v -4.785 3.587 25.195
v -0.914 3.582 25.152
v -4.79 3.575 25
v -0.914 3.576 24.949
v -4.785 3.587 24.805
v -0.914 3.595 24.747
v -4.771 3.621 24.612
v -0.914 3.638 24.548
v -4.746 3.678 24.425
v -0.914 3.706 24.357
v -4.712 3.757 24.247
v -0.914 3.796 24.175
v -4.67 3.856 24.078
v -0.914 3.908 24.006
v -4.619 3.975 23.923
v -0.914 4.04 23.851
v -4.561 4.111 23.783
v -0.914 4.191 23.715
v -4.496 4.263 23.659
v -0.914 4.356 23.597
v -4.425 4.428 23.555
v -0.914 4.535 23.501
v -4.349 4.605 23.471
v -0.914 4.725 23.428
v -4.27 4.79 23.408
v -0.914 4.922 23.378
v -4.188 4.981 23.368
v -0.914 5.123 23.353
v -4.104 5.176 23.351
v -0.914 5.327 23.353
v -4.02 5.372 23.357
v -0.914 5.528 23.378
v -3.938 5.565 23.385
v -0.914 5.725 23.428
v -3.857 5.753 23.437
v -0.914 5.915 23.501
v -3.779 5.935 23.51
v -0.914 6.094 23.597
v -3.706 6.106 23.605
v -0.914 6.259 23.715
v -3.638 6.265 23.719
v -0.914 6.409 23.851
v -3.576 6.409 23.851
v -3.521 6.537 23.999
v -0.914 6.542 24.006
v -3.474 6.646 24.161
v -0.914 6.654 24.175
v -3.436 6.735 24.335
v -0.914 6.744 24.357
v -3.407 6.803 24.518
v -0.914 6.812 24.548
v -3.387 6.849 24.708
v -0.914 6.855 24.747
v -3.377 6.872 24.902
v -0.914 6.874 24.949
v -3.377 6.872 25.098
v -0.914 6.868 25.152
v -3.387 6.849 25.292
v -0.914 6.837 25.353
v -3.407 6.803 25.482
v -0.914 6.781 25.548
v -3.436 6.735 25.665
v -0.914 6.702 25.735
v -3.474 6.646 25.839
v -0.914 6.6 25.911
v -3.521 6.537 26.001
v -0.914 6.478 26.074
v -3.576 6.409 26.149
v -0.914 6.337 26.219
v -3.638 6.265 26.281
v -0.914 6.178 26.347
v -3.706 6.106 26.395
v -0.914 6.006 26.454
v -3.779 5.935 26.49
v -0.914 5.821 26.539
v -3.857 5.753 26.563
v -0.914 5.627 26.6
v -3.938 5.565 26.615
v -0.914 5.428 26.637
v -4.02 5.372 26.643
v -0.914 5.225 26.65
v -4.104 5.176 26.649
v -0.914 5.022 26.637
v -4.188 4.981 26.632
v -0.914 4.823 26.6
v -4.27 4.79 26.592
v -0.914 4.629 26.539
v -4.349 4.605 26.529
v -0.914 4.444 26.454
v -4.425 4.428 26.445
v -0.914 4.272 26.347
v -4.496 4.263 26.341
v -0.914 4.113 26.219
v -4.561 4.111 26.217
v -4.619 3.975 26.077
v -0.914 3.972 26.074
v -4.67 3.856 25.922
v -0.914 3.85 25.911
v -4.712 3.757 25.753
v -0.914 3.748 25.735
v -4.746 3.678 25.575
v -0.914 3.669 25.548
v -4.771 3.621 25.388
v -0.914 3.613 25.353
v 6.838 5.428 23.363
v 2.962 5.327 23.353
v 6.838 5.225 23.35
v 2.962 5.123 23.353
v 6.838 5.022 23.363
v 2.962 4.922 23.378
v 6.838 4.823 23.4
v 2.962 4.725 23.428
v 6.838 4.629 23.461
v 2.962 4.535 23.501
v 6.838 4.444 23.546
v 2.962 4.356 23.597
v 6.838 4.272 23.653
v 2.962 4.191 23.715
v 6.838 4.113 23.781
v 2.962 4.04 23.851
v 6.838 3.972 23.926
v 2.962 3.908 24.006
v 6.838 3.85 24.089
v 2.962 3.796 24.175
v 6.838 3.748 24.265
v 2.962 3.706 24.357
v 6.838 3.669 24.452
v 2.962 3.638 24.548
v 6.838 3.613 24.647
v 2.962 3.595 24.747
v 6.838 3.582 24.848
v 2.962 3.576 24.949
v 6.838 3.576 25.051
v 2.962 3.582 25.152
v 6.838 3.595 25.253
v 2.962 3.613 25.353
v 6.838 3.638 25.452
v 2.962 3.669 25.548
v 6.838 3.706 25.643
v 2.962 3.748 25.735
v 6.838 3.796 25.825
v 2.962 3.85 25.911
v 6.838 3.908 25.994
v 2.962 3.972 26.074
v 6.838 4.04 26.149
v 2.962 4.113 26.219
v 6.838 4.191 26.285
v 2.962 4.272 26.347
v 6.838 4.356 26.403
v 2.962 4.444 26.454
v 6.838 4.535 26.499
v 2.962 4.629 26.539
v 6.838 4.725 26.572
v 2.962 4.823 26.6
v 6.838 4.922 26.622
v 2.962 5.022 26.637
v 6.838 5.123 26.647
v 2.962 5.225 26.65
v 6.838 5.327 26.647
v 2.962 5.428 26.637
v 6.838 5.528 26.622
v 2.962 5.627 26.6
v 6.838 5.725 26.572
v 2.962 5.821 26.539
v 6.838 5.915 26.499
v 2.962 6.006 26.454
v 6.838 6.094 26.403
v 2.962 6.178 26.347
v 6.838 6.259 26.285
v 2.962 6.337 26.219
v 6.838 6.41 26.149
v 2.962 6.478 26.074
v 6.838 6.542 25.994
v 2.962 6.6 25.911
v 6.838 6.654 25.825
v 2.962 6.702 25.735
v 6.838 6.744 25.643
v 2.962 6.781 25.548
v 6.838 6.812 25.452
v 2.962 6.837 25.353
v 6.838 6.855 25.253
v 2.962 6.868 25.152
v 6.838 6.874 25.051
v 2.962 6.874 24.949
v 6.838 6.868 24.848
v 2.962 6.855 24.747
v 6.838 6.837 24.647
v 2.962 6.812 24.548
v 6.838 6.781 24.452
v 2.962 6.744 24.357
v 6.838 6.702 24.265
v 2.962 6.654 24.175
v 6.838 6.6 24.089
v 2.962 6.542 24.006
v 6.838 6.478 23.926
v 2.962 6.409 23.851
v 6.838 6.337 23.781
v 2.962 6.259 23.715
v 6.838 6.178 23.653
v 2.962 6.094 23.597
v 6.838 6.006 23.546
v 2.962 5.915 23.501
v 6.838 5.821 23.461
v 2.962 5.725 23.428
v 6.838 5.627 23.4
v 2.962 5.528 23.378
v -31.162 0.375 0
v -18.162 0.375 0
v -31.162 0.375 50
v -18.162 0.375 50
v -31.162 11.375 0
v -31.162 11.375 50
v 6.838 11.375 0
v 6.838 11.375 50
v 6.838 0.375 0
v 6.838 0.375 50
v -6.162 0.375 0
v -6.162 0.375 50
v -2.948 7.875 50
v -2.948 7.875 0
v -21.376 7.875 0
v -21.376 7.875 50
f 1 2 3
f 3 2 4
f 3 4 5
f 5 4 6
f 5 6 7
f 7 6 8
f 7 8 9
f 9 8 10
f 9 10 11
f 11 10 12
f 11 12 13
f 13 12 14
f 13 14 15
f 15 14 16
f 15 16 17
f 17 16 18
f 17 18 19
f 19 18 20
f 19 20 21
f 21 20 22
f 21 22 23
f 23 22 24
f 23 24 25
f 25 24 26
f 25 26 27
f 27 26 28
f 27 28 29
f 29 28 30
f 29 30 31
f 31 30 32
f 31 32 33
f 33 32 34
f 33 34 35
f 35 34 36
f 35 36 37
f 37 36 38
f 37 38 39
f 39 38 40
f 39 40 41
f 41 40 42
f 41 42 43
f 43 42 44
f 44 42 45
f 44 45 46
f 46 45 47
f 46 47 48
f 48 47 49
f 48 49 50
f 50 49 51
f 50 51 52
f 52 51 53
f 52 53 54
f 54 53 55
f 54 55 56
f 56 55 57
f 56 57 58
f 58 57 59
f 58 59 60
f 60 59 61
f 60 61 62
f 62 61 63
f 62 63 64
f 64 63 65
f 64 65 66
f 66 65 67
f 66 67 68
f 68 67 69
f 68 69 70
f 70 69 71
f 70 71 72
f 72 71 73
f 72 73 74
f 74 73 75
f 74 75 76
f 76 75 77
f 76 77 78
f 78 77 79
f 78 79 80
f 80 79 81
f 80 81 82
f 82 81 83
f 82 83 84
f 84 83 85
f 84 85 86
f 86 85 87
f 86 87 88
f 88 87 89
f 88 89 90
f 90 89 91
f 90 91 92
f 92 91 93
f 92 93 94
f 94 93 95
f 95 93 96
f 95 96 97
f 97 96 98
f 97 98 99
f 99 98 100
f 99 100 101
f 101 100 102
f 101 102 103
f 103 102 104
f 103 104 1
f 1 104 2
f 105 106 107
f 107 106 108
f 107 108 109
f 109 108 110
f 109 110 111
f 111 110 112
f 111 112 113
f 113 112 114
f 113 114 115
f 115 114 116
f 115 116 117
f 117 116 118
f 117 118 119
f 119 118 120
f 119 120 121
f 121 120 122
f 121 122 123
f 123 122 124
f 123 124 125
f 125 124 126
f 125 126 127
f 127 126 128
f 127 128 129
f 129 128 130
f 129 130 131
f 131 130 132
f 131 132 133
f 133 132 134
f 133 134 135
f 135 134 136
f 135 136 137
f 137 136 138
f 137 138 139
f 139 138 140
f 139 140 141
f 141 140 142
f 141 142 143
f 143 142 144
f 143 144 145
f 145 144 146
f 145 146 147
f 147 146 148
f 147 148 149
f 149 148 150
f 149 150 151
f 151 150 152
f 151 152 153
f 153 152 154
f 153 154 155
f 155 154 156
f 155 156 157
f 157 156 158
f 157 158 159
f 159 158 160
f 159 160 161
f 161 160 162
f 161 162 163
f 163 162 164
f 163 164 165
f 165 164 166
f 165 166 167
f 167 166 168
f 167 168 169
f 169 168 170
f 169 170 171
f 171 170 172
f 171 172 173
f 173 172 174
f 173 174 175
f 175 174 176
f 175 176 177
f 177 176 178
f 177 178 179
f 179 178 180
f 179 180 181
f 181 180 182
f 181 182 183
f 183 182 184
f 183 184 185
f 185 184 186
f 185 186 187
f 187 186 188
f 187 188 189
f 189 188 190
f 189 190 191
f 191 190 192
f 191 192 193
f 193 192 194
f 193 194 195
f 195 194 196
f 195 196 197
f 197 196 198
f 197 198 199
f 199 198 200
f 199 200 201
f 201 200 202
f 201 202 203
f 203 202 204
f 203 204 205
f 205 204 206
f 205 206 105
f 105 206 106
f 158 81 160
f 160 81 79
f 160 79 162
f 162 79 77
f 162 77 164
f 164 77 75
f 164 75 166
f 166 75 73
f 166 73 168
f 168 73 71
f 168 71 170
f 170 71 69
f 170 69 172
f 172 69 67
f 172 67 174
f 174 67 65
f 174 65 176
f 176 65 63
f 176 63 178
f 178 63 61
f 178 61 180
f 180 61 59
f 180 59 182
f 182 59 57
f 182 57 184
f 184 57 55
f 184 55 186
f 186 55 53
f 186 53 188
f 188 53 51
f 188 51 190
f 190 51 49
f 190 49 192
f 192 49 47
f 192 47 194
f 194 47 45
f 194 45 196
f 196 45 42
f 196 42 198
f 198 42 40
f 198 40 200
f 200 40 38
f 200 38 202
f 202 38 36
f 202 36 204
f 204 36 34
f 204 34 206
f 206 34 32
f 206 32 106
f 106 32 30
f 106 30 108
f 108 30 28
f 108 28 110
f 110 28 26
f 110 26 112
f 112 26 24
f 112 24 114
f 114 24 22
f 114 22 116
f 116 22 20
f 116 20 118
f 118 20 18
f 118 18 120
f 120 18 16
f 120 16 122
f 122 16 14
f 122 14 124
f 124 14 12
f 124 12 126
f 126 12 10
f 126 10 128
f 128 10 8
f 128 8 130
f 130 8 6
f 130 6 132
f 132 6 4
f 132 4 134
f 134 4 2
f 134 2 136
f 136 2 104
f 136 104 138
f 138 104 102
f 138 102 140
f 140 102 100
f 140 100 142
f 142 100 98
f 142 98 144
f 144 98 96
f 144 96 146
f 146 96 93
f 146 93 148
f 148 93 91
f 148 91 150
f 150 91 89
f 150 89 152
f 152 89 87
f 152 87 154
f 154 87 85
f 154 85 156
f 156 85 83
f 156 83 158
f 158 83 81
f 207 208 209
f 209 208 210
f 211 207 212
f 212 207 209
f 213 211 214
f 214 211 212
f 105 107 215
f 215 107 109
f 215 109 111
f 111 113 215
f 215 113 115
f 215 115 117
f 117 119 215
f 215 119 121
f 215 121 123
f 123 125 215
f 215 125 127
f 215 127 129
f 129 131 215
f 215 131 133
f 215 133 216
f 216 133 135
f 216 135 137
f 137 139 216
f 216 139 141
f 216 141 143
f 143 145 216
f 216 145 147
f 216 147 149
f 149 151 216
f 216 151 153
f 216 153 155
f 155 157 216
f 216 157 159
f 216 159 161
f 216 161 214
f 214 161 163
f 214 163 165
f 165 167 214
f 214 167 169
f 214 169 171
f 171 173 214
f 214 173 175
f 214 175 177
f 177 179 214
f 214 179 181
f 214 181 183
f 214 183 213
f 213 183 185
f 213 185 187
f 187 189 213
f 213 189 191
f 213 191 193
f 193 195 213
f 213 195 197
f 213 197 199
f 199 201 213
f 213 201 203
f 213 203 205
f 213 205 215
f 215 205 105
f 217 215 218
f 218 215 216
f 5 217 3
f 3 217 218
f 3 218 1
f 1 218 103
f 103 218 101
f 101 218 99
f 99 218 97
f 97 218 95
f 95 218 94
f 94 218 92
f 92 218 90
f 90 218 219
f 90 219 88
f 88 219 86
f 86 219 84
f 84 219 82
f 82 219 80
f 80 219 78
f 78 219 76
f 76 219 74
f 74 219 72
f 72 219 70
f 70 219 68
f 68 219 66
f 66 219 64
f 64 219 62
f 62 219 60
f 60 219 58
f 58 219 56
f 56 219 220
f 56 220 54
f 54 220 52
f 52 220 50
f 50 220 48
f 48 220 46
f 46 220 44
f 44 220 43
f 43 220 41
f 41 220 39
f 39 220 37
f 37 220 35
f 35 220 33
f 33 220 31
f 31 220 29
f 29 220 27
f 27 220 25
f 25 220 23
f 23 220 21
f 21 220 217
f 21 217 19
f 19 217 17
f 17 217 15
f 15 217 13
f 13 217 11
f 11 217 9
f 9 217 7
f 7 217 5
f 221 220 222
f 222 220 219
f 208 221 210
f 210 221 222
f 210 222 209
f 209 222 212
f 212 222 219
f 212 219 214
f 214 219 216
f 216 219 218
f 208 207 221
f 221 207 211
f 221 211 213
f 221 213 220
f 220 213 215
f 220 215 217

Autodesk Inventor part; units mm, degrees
ref_plane "YZ Plane" through (0, 0, 0) normal (1, 0, 0) x (0, 1, 0)
ref_plane "XZ Plane" through (0, 0, 0) normal (0, 1, 0) x (-1, 0, 0)
ref_plane "XY Plane" through (0, 0, 0) normal (0, 0, 1) x (1, 0, 0)
sketch "Skizze1" plane through (0, 0, 0) normal (0, 0, 1) x (1, 0, 0)
  line L0 (-18.1618, 0.375) -> (-21.3761, 7.875)
  line L1 (-2.9476, 7.875) -> (-6.1618, 0.375)
  line L2 (-6.1618, 0.375) -> (-18.1618, 0.375)
  line L3 (-18.1618, 0.375) -> (-31.1618, 0.375)
  line L4 (-31.1618, 0.375) -> (-31.1618, 11.375)
  line L5 (-31.1618, 11.375) -> (6.8382, 11.375)
  line L6 (6.8382, 11.375) -> (6.8382, 0.375)
  line L7 (6.8382, 0.375) -> (-6.1618, 0.375)
  line L8 (-21.5376, 7.875) -> (-2.9476, 7.875)
  point P0 (0, 0)
  point P1 (-21.1618, 7.375)
  point P2 (-3.1618, 7.375)
  dimension "d10" = 38
  dimension "d14" = 12
  dimension "d17" = 13
  dimension "d27" = 18.59
  dimension "d28" = 7.5
  dimension "d29" = 3.2143
  dimension "d30" = 3.2143
extrude "Extrusion1" add sketch "Skizze1" along normal blind 50 contours L3 L4 L5 L6 L7 L1 L8 L0
sketch "Skizze2" plane through (6.8382, 0.375, 0) normal (1, 0, 0) x (0, 0, -1)
  line L0 (-50, 0) -> (-50, 11) projected
  line L1 (0, 11) -> (-50, 11) projected
  point P0 (0, -0.375)
  point P1 (-25, 4.85)
  dimension "d19" = 6.15
hole "Bohrung1" at (6.8382, 5.225, 25) direction (-1, 0, 0) diameter 3.3 depth 13 tip angle 118
properties part number "Schienenläuderaufsatz_15.11."
